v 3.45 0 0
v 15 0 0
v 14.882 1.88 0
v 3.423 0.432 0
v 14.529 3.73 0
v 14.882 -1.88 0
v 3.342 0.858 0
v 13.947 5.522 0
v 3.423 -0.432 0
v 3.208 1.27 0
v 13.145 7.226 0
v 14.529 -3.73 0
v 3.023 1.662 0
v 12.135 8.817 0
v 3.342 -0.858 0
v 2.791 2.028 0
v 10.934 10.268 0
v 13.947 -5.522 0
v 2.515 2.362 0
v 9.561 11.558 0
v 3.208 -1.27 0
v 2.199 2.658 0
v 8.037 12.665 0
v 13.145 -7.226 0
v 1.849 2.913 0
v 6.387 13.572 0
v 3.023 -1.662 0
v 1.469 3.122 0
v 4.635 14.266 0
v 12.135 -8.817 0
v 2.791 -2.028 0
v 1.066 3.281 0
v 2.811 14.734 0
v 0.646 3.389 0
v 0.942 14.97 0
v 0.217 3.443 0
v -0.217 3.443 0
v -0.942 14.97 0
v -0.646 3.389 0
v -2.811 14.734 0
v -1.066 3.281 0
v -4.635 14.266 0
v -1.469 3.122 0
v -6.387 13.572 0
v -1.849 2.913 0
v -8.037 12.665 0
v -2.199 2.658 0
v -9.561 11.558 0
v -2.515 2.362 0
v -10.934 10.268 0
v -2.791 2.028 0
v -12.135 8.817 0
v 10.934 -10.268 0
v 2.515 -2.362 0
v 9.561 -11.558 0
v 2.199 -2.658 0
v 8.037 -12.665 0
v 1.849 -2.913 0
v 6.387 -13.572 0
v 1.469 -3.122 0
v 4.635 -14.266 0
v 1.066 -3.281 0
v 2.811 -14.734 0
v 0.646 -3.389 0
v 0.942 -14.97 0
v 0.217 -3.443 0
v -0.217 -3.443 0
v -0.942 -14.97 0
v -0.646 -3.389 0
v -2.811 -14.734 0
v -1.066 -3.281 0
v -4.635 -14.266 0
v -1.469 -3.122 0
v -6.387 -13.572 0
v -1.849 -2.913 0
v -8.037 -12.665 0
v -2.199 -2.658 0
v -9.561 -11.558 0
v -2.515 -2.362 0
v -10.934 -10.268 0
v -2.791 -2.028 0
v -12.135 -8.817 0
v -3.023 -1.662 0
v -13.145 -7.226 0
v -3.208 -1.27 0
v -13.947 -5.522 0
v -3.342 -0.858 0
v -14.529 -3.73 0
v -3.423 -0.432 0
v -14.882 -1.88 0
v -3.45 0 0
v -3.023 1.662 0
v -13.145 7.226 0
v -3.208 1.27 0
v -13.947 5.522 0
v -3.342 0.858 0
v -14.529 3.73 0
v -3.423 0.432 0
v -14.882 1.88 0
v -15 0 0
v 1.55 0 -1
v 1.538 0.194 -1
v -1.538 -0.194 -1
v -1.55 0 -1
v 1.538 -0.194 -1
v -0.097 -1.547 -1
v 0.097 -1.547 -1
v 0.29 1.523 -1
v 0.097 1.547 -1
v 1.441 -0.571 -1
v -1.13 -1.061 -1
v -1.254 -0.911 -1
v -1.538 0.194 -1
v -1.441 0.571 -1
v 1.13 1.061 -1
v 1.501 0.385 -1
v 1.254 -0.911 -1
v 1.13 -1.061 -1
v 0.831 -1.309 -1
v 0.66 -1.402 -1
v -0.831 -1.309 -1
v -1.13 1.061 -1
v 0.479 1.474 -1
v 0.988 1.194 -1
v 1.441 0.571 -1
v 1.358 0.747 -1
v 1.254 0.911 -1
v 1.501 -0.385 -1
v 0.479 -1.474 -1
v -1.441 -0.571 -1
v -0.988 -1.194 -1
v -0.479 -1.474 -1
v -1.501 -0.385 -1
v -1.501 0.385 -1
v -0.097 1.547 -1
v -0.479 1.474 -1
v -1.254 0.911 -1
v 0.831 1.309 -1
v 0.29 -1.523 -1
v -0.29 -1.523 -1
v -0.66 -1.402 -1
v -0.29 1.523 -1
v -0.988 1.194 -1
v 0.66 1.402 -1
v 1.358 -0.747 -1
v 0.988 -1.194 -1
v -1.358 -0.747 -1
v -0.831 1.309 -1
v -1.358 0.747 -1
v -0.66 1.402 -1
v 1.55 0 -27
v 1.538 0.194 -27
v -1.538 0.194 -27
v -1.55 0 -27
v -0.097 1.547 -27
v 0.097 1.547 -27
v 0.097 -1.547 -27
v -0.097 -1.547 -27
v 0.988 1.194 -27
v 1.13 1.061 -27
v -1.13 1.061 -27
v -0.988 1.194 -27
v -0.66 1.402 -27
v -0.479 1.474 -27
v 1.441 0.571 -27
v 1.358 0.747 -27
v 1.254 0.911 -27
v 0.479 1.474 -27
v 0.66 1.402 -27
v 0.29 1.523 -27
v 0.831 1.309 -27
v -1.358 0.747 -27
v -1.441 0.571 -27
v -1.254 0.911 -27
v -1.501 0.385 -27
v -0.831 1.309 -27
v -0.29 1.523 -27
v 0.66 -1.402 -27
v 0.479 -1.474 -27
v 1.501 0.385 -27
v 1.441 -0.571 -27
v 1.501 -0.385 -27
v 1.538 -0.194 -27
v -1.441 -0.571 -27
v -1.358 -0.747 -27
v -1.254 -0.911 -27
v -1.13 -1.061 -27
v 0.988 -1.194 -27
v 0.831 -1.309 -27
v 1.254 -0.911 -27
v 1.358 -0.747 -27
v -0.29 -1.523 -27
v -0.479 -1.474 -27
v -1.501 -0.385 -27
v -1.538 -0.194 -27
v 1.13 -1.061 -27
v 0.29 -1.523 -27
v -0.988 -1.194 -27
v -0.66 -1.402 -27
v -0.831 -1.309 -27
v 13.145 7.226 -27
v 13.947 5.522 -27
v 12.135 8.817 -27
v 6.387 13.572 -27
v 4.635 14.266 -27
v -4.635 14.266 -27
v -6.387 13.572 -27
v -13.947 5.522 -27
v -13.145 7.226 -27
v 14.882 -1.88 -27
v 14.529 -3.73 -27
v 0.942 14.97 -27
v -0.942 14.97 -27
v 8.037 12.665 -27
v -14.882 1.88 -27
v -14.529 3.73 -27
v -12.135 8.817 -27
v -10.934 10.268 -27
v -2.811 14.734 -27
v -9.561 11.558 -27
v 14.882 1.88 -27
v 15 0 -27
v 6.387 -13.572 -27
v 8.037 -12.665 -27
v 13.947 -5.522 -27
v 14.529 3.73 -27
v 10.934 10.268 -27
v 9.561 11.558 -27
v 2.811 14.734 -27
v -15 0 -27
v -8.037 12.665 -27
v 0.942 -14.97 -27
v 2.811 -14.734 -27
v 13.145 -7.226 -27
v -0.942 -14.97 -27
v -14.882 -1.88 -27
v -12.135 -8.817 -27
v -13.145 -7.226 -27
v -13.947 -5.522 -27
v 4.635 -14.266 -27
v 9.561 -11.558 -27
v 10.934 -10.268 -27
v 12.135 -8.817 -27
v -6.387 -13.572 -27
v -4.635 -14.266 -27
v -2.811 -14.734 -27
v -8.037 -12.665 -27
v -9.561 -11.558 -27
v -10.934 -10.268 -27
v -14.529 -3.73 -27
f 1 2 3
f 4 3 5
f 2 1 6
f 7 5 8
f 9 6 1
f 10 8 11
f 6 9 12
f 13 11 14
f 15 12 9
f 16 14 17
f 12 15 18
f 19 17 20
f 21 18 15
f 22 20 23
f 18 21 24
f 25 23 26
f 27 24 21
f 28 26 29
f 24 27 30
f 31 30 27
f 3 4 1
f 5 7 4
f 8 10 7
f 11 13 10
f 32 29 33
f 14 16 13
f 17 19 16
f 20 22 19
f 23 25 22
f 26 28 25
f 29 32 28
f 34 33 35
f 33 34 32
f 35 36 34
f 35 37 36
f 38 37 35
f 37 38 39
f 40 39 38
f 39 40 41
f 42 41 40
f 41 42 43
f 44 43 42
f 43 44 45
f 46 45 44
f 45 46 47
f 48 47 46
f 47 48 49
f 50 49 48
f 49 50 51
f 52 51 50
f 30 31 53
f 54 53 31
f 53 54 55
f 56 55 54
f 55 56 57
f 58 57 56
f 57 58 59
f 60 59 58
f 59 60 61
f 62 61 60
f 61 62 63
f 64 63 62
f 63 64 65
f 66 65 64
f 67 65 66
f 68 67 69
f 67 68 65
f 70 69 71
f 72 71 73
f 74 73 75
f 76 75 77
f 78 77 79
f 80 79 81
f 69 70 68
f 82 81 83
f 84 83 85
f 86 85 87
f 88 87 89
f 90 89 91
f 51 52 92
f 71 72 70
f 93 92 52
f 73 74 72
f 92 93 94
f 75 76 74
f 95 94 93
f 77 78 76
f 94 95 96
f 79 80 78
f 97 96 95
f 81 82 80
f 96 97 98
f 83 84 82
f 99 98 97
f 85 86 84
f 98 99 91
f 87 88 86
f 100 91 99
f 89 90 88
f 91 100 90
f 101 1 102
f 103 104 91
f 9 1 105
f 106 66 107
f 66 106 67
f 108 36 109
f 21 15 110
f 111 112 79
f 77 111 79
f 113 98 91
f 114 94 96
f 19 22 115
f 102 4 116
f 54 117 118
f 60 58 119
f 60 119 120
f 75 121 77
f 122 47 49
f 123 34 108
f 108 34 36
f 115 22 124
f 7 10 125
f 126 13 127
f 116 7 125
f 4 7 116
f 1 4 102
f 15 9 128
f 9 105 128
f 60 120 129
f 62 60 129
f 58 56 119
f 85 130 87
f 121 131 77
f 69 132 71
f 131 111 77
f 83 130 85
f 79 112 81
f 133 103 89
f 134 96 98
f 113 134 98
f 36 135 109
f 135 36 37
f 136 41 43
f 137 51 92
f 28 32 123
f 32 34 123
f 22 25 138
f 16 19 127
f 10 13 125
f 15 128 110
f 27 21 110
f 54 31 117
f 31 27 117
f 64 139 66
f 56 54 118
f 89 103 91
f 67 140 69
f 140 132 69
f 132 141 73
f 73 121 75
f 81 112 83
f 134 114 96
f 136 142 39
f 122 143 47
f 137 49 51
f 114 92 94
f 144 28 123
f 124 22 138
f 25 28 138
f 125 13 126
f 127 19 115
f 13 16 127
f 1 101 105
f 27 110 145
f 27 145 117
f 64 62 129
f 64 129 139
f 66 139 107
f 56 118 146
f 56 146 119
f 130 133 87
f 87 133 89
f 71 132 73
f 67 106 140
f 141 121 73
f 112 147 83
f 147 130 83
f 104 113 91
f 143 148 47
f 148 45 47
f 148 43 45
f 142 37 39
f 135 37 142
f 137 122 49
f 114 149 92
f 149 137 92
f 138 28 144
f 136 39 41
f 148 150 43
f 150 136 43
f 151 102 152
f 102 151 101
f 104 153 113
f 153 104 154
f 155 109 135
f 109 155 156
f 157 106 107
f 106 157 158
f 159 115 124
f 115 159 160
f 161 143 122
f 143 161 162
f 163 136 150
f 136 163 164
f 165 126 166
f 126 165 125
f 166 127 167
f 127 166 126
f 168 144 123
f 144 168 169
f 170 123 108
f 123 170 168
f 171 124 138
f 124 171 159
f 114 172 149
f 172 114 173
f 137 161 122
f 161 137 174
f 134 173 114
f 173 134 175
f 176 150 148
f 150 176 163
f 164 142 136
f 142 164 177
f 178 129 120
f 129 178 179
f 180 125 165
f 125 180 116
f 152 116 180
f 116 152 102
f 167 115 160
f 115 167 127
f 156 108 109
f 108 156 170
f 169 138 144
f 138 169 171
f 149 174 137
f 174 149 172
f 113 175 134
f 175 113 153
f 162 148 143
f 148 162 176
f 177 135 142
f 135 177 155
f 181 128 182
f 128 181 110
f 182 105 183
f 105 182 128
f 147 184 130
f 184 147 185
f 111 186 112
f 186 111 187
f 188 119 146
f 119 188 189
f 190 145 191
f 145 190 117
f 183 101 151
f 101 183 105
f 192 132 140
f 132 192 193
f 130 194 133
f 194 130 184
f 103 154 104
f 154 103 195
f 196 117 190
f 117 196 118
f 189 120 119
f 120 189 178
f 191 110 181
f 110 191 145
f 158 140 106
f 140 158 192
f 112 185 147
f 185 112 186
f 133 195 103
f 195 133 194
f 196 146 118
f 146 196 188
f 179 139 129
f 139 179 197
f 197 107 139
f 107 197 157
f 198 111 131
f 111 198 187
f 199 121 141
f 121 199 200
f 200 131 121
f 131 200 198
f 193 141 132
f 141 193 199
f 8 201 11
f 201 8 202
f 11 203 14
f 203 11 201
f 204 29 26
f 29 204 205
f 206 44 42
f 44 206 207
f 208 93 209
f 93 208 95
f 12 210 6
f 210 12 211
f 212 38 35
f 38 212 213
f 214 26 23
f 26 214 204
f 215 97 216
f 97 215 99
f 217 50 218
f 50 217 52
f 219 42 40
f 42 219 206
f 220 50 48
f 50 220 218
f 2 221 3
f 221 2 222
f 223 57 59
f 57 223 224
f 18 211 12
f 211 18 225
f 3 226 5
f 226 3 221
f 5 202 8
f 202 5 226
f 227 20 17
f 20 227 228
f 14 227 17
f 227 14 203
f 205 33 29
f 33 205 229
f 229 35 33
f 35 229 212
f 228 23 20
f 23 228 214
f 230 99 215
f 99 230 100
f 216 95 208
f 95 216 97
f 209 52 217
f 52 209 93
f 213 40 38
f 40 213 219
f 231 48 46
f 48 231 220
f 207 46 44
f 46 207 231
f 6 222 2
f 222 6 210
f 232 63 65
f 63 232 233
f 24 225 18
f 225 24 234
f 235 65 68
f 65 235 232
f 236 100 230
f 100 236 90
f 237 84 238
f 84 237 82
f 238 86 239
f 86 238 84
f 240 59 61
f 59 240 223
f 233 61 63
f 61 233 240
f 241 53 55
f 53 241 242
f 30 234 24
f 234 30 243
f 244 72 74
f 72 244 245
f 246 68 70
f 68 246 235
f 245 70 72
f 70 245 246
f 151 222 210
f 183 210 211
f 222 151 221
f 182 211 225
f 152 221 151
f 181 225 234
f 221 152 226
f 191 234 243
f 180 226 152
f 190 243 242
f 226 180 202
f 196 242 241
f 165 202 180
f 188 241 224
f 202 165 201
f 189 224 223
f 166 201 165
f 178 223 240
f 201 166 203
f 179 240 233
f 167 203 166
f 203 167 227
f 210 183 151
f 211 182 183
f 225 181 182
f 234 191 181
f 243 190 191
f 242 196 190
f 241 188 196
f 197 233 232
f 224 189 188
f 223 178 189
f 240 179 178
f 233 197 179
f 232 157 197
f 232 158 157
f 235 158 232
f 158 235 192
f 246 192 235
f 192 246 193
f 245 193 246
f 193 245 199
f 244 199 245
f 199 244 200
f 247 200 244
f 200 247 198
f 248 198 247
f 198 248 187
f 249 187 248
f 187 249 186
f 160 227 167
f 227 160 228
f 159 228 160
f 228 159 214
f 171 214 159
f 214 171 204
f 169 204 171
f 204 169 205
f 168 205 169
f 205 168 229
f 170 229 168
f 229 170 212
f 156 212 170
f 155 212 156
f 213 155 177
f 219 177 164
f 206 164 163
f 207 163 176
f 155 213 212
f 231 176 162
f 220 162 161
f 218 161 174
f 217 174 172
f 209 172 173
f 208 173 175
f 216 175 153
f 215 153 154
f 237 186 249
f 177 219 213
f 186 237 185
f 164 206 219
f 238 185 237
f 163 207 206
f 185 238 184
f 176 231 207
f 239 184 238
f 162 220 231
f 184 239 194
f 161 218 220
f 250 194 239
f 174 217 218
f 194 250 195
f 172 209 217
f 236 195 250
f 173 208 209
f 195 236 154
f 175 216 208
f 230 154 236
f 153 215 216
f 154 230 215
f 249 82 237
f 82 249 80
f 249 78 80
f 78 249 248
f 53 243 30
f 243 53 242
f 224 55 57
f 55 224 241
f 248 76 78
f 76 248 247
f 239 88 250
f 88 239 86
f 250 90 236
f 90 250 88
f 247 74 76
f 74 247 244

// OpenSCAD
$fn = 50;

difference() {
	union() {
		translate(v = [0, 0, -27.0]) {
			cylinder(h = 27, r = 15.0);
		}
	}
	union() {
		translate(v = [0, 0, 0]) {
			rotate(a = [0, 0, 0]) {
				difference() {
					union() {
						translate(v = [0, 0, -30.0]) {
							cylinder(h = 30, r = 1.25);
						}
						translate(v = [0, 0, -1.0]) {
							cylinder(h = 1.0, r1 = 1.55, r2 = 3.45);
						}
						translate(v = [0, 0, -30.0]) {
							cylinder(h = 30, r = 1.55);
						}
						translate(v = [0, 0, -30.0]) {
							cylinder(h = 30, r = 1.25);
						}
					}
					union();
				}
			}
		}
	}
}
